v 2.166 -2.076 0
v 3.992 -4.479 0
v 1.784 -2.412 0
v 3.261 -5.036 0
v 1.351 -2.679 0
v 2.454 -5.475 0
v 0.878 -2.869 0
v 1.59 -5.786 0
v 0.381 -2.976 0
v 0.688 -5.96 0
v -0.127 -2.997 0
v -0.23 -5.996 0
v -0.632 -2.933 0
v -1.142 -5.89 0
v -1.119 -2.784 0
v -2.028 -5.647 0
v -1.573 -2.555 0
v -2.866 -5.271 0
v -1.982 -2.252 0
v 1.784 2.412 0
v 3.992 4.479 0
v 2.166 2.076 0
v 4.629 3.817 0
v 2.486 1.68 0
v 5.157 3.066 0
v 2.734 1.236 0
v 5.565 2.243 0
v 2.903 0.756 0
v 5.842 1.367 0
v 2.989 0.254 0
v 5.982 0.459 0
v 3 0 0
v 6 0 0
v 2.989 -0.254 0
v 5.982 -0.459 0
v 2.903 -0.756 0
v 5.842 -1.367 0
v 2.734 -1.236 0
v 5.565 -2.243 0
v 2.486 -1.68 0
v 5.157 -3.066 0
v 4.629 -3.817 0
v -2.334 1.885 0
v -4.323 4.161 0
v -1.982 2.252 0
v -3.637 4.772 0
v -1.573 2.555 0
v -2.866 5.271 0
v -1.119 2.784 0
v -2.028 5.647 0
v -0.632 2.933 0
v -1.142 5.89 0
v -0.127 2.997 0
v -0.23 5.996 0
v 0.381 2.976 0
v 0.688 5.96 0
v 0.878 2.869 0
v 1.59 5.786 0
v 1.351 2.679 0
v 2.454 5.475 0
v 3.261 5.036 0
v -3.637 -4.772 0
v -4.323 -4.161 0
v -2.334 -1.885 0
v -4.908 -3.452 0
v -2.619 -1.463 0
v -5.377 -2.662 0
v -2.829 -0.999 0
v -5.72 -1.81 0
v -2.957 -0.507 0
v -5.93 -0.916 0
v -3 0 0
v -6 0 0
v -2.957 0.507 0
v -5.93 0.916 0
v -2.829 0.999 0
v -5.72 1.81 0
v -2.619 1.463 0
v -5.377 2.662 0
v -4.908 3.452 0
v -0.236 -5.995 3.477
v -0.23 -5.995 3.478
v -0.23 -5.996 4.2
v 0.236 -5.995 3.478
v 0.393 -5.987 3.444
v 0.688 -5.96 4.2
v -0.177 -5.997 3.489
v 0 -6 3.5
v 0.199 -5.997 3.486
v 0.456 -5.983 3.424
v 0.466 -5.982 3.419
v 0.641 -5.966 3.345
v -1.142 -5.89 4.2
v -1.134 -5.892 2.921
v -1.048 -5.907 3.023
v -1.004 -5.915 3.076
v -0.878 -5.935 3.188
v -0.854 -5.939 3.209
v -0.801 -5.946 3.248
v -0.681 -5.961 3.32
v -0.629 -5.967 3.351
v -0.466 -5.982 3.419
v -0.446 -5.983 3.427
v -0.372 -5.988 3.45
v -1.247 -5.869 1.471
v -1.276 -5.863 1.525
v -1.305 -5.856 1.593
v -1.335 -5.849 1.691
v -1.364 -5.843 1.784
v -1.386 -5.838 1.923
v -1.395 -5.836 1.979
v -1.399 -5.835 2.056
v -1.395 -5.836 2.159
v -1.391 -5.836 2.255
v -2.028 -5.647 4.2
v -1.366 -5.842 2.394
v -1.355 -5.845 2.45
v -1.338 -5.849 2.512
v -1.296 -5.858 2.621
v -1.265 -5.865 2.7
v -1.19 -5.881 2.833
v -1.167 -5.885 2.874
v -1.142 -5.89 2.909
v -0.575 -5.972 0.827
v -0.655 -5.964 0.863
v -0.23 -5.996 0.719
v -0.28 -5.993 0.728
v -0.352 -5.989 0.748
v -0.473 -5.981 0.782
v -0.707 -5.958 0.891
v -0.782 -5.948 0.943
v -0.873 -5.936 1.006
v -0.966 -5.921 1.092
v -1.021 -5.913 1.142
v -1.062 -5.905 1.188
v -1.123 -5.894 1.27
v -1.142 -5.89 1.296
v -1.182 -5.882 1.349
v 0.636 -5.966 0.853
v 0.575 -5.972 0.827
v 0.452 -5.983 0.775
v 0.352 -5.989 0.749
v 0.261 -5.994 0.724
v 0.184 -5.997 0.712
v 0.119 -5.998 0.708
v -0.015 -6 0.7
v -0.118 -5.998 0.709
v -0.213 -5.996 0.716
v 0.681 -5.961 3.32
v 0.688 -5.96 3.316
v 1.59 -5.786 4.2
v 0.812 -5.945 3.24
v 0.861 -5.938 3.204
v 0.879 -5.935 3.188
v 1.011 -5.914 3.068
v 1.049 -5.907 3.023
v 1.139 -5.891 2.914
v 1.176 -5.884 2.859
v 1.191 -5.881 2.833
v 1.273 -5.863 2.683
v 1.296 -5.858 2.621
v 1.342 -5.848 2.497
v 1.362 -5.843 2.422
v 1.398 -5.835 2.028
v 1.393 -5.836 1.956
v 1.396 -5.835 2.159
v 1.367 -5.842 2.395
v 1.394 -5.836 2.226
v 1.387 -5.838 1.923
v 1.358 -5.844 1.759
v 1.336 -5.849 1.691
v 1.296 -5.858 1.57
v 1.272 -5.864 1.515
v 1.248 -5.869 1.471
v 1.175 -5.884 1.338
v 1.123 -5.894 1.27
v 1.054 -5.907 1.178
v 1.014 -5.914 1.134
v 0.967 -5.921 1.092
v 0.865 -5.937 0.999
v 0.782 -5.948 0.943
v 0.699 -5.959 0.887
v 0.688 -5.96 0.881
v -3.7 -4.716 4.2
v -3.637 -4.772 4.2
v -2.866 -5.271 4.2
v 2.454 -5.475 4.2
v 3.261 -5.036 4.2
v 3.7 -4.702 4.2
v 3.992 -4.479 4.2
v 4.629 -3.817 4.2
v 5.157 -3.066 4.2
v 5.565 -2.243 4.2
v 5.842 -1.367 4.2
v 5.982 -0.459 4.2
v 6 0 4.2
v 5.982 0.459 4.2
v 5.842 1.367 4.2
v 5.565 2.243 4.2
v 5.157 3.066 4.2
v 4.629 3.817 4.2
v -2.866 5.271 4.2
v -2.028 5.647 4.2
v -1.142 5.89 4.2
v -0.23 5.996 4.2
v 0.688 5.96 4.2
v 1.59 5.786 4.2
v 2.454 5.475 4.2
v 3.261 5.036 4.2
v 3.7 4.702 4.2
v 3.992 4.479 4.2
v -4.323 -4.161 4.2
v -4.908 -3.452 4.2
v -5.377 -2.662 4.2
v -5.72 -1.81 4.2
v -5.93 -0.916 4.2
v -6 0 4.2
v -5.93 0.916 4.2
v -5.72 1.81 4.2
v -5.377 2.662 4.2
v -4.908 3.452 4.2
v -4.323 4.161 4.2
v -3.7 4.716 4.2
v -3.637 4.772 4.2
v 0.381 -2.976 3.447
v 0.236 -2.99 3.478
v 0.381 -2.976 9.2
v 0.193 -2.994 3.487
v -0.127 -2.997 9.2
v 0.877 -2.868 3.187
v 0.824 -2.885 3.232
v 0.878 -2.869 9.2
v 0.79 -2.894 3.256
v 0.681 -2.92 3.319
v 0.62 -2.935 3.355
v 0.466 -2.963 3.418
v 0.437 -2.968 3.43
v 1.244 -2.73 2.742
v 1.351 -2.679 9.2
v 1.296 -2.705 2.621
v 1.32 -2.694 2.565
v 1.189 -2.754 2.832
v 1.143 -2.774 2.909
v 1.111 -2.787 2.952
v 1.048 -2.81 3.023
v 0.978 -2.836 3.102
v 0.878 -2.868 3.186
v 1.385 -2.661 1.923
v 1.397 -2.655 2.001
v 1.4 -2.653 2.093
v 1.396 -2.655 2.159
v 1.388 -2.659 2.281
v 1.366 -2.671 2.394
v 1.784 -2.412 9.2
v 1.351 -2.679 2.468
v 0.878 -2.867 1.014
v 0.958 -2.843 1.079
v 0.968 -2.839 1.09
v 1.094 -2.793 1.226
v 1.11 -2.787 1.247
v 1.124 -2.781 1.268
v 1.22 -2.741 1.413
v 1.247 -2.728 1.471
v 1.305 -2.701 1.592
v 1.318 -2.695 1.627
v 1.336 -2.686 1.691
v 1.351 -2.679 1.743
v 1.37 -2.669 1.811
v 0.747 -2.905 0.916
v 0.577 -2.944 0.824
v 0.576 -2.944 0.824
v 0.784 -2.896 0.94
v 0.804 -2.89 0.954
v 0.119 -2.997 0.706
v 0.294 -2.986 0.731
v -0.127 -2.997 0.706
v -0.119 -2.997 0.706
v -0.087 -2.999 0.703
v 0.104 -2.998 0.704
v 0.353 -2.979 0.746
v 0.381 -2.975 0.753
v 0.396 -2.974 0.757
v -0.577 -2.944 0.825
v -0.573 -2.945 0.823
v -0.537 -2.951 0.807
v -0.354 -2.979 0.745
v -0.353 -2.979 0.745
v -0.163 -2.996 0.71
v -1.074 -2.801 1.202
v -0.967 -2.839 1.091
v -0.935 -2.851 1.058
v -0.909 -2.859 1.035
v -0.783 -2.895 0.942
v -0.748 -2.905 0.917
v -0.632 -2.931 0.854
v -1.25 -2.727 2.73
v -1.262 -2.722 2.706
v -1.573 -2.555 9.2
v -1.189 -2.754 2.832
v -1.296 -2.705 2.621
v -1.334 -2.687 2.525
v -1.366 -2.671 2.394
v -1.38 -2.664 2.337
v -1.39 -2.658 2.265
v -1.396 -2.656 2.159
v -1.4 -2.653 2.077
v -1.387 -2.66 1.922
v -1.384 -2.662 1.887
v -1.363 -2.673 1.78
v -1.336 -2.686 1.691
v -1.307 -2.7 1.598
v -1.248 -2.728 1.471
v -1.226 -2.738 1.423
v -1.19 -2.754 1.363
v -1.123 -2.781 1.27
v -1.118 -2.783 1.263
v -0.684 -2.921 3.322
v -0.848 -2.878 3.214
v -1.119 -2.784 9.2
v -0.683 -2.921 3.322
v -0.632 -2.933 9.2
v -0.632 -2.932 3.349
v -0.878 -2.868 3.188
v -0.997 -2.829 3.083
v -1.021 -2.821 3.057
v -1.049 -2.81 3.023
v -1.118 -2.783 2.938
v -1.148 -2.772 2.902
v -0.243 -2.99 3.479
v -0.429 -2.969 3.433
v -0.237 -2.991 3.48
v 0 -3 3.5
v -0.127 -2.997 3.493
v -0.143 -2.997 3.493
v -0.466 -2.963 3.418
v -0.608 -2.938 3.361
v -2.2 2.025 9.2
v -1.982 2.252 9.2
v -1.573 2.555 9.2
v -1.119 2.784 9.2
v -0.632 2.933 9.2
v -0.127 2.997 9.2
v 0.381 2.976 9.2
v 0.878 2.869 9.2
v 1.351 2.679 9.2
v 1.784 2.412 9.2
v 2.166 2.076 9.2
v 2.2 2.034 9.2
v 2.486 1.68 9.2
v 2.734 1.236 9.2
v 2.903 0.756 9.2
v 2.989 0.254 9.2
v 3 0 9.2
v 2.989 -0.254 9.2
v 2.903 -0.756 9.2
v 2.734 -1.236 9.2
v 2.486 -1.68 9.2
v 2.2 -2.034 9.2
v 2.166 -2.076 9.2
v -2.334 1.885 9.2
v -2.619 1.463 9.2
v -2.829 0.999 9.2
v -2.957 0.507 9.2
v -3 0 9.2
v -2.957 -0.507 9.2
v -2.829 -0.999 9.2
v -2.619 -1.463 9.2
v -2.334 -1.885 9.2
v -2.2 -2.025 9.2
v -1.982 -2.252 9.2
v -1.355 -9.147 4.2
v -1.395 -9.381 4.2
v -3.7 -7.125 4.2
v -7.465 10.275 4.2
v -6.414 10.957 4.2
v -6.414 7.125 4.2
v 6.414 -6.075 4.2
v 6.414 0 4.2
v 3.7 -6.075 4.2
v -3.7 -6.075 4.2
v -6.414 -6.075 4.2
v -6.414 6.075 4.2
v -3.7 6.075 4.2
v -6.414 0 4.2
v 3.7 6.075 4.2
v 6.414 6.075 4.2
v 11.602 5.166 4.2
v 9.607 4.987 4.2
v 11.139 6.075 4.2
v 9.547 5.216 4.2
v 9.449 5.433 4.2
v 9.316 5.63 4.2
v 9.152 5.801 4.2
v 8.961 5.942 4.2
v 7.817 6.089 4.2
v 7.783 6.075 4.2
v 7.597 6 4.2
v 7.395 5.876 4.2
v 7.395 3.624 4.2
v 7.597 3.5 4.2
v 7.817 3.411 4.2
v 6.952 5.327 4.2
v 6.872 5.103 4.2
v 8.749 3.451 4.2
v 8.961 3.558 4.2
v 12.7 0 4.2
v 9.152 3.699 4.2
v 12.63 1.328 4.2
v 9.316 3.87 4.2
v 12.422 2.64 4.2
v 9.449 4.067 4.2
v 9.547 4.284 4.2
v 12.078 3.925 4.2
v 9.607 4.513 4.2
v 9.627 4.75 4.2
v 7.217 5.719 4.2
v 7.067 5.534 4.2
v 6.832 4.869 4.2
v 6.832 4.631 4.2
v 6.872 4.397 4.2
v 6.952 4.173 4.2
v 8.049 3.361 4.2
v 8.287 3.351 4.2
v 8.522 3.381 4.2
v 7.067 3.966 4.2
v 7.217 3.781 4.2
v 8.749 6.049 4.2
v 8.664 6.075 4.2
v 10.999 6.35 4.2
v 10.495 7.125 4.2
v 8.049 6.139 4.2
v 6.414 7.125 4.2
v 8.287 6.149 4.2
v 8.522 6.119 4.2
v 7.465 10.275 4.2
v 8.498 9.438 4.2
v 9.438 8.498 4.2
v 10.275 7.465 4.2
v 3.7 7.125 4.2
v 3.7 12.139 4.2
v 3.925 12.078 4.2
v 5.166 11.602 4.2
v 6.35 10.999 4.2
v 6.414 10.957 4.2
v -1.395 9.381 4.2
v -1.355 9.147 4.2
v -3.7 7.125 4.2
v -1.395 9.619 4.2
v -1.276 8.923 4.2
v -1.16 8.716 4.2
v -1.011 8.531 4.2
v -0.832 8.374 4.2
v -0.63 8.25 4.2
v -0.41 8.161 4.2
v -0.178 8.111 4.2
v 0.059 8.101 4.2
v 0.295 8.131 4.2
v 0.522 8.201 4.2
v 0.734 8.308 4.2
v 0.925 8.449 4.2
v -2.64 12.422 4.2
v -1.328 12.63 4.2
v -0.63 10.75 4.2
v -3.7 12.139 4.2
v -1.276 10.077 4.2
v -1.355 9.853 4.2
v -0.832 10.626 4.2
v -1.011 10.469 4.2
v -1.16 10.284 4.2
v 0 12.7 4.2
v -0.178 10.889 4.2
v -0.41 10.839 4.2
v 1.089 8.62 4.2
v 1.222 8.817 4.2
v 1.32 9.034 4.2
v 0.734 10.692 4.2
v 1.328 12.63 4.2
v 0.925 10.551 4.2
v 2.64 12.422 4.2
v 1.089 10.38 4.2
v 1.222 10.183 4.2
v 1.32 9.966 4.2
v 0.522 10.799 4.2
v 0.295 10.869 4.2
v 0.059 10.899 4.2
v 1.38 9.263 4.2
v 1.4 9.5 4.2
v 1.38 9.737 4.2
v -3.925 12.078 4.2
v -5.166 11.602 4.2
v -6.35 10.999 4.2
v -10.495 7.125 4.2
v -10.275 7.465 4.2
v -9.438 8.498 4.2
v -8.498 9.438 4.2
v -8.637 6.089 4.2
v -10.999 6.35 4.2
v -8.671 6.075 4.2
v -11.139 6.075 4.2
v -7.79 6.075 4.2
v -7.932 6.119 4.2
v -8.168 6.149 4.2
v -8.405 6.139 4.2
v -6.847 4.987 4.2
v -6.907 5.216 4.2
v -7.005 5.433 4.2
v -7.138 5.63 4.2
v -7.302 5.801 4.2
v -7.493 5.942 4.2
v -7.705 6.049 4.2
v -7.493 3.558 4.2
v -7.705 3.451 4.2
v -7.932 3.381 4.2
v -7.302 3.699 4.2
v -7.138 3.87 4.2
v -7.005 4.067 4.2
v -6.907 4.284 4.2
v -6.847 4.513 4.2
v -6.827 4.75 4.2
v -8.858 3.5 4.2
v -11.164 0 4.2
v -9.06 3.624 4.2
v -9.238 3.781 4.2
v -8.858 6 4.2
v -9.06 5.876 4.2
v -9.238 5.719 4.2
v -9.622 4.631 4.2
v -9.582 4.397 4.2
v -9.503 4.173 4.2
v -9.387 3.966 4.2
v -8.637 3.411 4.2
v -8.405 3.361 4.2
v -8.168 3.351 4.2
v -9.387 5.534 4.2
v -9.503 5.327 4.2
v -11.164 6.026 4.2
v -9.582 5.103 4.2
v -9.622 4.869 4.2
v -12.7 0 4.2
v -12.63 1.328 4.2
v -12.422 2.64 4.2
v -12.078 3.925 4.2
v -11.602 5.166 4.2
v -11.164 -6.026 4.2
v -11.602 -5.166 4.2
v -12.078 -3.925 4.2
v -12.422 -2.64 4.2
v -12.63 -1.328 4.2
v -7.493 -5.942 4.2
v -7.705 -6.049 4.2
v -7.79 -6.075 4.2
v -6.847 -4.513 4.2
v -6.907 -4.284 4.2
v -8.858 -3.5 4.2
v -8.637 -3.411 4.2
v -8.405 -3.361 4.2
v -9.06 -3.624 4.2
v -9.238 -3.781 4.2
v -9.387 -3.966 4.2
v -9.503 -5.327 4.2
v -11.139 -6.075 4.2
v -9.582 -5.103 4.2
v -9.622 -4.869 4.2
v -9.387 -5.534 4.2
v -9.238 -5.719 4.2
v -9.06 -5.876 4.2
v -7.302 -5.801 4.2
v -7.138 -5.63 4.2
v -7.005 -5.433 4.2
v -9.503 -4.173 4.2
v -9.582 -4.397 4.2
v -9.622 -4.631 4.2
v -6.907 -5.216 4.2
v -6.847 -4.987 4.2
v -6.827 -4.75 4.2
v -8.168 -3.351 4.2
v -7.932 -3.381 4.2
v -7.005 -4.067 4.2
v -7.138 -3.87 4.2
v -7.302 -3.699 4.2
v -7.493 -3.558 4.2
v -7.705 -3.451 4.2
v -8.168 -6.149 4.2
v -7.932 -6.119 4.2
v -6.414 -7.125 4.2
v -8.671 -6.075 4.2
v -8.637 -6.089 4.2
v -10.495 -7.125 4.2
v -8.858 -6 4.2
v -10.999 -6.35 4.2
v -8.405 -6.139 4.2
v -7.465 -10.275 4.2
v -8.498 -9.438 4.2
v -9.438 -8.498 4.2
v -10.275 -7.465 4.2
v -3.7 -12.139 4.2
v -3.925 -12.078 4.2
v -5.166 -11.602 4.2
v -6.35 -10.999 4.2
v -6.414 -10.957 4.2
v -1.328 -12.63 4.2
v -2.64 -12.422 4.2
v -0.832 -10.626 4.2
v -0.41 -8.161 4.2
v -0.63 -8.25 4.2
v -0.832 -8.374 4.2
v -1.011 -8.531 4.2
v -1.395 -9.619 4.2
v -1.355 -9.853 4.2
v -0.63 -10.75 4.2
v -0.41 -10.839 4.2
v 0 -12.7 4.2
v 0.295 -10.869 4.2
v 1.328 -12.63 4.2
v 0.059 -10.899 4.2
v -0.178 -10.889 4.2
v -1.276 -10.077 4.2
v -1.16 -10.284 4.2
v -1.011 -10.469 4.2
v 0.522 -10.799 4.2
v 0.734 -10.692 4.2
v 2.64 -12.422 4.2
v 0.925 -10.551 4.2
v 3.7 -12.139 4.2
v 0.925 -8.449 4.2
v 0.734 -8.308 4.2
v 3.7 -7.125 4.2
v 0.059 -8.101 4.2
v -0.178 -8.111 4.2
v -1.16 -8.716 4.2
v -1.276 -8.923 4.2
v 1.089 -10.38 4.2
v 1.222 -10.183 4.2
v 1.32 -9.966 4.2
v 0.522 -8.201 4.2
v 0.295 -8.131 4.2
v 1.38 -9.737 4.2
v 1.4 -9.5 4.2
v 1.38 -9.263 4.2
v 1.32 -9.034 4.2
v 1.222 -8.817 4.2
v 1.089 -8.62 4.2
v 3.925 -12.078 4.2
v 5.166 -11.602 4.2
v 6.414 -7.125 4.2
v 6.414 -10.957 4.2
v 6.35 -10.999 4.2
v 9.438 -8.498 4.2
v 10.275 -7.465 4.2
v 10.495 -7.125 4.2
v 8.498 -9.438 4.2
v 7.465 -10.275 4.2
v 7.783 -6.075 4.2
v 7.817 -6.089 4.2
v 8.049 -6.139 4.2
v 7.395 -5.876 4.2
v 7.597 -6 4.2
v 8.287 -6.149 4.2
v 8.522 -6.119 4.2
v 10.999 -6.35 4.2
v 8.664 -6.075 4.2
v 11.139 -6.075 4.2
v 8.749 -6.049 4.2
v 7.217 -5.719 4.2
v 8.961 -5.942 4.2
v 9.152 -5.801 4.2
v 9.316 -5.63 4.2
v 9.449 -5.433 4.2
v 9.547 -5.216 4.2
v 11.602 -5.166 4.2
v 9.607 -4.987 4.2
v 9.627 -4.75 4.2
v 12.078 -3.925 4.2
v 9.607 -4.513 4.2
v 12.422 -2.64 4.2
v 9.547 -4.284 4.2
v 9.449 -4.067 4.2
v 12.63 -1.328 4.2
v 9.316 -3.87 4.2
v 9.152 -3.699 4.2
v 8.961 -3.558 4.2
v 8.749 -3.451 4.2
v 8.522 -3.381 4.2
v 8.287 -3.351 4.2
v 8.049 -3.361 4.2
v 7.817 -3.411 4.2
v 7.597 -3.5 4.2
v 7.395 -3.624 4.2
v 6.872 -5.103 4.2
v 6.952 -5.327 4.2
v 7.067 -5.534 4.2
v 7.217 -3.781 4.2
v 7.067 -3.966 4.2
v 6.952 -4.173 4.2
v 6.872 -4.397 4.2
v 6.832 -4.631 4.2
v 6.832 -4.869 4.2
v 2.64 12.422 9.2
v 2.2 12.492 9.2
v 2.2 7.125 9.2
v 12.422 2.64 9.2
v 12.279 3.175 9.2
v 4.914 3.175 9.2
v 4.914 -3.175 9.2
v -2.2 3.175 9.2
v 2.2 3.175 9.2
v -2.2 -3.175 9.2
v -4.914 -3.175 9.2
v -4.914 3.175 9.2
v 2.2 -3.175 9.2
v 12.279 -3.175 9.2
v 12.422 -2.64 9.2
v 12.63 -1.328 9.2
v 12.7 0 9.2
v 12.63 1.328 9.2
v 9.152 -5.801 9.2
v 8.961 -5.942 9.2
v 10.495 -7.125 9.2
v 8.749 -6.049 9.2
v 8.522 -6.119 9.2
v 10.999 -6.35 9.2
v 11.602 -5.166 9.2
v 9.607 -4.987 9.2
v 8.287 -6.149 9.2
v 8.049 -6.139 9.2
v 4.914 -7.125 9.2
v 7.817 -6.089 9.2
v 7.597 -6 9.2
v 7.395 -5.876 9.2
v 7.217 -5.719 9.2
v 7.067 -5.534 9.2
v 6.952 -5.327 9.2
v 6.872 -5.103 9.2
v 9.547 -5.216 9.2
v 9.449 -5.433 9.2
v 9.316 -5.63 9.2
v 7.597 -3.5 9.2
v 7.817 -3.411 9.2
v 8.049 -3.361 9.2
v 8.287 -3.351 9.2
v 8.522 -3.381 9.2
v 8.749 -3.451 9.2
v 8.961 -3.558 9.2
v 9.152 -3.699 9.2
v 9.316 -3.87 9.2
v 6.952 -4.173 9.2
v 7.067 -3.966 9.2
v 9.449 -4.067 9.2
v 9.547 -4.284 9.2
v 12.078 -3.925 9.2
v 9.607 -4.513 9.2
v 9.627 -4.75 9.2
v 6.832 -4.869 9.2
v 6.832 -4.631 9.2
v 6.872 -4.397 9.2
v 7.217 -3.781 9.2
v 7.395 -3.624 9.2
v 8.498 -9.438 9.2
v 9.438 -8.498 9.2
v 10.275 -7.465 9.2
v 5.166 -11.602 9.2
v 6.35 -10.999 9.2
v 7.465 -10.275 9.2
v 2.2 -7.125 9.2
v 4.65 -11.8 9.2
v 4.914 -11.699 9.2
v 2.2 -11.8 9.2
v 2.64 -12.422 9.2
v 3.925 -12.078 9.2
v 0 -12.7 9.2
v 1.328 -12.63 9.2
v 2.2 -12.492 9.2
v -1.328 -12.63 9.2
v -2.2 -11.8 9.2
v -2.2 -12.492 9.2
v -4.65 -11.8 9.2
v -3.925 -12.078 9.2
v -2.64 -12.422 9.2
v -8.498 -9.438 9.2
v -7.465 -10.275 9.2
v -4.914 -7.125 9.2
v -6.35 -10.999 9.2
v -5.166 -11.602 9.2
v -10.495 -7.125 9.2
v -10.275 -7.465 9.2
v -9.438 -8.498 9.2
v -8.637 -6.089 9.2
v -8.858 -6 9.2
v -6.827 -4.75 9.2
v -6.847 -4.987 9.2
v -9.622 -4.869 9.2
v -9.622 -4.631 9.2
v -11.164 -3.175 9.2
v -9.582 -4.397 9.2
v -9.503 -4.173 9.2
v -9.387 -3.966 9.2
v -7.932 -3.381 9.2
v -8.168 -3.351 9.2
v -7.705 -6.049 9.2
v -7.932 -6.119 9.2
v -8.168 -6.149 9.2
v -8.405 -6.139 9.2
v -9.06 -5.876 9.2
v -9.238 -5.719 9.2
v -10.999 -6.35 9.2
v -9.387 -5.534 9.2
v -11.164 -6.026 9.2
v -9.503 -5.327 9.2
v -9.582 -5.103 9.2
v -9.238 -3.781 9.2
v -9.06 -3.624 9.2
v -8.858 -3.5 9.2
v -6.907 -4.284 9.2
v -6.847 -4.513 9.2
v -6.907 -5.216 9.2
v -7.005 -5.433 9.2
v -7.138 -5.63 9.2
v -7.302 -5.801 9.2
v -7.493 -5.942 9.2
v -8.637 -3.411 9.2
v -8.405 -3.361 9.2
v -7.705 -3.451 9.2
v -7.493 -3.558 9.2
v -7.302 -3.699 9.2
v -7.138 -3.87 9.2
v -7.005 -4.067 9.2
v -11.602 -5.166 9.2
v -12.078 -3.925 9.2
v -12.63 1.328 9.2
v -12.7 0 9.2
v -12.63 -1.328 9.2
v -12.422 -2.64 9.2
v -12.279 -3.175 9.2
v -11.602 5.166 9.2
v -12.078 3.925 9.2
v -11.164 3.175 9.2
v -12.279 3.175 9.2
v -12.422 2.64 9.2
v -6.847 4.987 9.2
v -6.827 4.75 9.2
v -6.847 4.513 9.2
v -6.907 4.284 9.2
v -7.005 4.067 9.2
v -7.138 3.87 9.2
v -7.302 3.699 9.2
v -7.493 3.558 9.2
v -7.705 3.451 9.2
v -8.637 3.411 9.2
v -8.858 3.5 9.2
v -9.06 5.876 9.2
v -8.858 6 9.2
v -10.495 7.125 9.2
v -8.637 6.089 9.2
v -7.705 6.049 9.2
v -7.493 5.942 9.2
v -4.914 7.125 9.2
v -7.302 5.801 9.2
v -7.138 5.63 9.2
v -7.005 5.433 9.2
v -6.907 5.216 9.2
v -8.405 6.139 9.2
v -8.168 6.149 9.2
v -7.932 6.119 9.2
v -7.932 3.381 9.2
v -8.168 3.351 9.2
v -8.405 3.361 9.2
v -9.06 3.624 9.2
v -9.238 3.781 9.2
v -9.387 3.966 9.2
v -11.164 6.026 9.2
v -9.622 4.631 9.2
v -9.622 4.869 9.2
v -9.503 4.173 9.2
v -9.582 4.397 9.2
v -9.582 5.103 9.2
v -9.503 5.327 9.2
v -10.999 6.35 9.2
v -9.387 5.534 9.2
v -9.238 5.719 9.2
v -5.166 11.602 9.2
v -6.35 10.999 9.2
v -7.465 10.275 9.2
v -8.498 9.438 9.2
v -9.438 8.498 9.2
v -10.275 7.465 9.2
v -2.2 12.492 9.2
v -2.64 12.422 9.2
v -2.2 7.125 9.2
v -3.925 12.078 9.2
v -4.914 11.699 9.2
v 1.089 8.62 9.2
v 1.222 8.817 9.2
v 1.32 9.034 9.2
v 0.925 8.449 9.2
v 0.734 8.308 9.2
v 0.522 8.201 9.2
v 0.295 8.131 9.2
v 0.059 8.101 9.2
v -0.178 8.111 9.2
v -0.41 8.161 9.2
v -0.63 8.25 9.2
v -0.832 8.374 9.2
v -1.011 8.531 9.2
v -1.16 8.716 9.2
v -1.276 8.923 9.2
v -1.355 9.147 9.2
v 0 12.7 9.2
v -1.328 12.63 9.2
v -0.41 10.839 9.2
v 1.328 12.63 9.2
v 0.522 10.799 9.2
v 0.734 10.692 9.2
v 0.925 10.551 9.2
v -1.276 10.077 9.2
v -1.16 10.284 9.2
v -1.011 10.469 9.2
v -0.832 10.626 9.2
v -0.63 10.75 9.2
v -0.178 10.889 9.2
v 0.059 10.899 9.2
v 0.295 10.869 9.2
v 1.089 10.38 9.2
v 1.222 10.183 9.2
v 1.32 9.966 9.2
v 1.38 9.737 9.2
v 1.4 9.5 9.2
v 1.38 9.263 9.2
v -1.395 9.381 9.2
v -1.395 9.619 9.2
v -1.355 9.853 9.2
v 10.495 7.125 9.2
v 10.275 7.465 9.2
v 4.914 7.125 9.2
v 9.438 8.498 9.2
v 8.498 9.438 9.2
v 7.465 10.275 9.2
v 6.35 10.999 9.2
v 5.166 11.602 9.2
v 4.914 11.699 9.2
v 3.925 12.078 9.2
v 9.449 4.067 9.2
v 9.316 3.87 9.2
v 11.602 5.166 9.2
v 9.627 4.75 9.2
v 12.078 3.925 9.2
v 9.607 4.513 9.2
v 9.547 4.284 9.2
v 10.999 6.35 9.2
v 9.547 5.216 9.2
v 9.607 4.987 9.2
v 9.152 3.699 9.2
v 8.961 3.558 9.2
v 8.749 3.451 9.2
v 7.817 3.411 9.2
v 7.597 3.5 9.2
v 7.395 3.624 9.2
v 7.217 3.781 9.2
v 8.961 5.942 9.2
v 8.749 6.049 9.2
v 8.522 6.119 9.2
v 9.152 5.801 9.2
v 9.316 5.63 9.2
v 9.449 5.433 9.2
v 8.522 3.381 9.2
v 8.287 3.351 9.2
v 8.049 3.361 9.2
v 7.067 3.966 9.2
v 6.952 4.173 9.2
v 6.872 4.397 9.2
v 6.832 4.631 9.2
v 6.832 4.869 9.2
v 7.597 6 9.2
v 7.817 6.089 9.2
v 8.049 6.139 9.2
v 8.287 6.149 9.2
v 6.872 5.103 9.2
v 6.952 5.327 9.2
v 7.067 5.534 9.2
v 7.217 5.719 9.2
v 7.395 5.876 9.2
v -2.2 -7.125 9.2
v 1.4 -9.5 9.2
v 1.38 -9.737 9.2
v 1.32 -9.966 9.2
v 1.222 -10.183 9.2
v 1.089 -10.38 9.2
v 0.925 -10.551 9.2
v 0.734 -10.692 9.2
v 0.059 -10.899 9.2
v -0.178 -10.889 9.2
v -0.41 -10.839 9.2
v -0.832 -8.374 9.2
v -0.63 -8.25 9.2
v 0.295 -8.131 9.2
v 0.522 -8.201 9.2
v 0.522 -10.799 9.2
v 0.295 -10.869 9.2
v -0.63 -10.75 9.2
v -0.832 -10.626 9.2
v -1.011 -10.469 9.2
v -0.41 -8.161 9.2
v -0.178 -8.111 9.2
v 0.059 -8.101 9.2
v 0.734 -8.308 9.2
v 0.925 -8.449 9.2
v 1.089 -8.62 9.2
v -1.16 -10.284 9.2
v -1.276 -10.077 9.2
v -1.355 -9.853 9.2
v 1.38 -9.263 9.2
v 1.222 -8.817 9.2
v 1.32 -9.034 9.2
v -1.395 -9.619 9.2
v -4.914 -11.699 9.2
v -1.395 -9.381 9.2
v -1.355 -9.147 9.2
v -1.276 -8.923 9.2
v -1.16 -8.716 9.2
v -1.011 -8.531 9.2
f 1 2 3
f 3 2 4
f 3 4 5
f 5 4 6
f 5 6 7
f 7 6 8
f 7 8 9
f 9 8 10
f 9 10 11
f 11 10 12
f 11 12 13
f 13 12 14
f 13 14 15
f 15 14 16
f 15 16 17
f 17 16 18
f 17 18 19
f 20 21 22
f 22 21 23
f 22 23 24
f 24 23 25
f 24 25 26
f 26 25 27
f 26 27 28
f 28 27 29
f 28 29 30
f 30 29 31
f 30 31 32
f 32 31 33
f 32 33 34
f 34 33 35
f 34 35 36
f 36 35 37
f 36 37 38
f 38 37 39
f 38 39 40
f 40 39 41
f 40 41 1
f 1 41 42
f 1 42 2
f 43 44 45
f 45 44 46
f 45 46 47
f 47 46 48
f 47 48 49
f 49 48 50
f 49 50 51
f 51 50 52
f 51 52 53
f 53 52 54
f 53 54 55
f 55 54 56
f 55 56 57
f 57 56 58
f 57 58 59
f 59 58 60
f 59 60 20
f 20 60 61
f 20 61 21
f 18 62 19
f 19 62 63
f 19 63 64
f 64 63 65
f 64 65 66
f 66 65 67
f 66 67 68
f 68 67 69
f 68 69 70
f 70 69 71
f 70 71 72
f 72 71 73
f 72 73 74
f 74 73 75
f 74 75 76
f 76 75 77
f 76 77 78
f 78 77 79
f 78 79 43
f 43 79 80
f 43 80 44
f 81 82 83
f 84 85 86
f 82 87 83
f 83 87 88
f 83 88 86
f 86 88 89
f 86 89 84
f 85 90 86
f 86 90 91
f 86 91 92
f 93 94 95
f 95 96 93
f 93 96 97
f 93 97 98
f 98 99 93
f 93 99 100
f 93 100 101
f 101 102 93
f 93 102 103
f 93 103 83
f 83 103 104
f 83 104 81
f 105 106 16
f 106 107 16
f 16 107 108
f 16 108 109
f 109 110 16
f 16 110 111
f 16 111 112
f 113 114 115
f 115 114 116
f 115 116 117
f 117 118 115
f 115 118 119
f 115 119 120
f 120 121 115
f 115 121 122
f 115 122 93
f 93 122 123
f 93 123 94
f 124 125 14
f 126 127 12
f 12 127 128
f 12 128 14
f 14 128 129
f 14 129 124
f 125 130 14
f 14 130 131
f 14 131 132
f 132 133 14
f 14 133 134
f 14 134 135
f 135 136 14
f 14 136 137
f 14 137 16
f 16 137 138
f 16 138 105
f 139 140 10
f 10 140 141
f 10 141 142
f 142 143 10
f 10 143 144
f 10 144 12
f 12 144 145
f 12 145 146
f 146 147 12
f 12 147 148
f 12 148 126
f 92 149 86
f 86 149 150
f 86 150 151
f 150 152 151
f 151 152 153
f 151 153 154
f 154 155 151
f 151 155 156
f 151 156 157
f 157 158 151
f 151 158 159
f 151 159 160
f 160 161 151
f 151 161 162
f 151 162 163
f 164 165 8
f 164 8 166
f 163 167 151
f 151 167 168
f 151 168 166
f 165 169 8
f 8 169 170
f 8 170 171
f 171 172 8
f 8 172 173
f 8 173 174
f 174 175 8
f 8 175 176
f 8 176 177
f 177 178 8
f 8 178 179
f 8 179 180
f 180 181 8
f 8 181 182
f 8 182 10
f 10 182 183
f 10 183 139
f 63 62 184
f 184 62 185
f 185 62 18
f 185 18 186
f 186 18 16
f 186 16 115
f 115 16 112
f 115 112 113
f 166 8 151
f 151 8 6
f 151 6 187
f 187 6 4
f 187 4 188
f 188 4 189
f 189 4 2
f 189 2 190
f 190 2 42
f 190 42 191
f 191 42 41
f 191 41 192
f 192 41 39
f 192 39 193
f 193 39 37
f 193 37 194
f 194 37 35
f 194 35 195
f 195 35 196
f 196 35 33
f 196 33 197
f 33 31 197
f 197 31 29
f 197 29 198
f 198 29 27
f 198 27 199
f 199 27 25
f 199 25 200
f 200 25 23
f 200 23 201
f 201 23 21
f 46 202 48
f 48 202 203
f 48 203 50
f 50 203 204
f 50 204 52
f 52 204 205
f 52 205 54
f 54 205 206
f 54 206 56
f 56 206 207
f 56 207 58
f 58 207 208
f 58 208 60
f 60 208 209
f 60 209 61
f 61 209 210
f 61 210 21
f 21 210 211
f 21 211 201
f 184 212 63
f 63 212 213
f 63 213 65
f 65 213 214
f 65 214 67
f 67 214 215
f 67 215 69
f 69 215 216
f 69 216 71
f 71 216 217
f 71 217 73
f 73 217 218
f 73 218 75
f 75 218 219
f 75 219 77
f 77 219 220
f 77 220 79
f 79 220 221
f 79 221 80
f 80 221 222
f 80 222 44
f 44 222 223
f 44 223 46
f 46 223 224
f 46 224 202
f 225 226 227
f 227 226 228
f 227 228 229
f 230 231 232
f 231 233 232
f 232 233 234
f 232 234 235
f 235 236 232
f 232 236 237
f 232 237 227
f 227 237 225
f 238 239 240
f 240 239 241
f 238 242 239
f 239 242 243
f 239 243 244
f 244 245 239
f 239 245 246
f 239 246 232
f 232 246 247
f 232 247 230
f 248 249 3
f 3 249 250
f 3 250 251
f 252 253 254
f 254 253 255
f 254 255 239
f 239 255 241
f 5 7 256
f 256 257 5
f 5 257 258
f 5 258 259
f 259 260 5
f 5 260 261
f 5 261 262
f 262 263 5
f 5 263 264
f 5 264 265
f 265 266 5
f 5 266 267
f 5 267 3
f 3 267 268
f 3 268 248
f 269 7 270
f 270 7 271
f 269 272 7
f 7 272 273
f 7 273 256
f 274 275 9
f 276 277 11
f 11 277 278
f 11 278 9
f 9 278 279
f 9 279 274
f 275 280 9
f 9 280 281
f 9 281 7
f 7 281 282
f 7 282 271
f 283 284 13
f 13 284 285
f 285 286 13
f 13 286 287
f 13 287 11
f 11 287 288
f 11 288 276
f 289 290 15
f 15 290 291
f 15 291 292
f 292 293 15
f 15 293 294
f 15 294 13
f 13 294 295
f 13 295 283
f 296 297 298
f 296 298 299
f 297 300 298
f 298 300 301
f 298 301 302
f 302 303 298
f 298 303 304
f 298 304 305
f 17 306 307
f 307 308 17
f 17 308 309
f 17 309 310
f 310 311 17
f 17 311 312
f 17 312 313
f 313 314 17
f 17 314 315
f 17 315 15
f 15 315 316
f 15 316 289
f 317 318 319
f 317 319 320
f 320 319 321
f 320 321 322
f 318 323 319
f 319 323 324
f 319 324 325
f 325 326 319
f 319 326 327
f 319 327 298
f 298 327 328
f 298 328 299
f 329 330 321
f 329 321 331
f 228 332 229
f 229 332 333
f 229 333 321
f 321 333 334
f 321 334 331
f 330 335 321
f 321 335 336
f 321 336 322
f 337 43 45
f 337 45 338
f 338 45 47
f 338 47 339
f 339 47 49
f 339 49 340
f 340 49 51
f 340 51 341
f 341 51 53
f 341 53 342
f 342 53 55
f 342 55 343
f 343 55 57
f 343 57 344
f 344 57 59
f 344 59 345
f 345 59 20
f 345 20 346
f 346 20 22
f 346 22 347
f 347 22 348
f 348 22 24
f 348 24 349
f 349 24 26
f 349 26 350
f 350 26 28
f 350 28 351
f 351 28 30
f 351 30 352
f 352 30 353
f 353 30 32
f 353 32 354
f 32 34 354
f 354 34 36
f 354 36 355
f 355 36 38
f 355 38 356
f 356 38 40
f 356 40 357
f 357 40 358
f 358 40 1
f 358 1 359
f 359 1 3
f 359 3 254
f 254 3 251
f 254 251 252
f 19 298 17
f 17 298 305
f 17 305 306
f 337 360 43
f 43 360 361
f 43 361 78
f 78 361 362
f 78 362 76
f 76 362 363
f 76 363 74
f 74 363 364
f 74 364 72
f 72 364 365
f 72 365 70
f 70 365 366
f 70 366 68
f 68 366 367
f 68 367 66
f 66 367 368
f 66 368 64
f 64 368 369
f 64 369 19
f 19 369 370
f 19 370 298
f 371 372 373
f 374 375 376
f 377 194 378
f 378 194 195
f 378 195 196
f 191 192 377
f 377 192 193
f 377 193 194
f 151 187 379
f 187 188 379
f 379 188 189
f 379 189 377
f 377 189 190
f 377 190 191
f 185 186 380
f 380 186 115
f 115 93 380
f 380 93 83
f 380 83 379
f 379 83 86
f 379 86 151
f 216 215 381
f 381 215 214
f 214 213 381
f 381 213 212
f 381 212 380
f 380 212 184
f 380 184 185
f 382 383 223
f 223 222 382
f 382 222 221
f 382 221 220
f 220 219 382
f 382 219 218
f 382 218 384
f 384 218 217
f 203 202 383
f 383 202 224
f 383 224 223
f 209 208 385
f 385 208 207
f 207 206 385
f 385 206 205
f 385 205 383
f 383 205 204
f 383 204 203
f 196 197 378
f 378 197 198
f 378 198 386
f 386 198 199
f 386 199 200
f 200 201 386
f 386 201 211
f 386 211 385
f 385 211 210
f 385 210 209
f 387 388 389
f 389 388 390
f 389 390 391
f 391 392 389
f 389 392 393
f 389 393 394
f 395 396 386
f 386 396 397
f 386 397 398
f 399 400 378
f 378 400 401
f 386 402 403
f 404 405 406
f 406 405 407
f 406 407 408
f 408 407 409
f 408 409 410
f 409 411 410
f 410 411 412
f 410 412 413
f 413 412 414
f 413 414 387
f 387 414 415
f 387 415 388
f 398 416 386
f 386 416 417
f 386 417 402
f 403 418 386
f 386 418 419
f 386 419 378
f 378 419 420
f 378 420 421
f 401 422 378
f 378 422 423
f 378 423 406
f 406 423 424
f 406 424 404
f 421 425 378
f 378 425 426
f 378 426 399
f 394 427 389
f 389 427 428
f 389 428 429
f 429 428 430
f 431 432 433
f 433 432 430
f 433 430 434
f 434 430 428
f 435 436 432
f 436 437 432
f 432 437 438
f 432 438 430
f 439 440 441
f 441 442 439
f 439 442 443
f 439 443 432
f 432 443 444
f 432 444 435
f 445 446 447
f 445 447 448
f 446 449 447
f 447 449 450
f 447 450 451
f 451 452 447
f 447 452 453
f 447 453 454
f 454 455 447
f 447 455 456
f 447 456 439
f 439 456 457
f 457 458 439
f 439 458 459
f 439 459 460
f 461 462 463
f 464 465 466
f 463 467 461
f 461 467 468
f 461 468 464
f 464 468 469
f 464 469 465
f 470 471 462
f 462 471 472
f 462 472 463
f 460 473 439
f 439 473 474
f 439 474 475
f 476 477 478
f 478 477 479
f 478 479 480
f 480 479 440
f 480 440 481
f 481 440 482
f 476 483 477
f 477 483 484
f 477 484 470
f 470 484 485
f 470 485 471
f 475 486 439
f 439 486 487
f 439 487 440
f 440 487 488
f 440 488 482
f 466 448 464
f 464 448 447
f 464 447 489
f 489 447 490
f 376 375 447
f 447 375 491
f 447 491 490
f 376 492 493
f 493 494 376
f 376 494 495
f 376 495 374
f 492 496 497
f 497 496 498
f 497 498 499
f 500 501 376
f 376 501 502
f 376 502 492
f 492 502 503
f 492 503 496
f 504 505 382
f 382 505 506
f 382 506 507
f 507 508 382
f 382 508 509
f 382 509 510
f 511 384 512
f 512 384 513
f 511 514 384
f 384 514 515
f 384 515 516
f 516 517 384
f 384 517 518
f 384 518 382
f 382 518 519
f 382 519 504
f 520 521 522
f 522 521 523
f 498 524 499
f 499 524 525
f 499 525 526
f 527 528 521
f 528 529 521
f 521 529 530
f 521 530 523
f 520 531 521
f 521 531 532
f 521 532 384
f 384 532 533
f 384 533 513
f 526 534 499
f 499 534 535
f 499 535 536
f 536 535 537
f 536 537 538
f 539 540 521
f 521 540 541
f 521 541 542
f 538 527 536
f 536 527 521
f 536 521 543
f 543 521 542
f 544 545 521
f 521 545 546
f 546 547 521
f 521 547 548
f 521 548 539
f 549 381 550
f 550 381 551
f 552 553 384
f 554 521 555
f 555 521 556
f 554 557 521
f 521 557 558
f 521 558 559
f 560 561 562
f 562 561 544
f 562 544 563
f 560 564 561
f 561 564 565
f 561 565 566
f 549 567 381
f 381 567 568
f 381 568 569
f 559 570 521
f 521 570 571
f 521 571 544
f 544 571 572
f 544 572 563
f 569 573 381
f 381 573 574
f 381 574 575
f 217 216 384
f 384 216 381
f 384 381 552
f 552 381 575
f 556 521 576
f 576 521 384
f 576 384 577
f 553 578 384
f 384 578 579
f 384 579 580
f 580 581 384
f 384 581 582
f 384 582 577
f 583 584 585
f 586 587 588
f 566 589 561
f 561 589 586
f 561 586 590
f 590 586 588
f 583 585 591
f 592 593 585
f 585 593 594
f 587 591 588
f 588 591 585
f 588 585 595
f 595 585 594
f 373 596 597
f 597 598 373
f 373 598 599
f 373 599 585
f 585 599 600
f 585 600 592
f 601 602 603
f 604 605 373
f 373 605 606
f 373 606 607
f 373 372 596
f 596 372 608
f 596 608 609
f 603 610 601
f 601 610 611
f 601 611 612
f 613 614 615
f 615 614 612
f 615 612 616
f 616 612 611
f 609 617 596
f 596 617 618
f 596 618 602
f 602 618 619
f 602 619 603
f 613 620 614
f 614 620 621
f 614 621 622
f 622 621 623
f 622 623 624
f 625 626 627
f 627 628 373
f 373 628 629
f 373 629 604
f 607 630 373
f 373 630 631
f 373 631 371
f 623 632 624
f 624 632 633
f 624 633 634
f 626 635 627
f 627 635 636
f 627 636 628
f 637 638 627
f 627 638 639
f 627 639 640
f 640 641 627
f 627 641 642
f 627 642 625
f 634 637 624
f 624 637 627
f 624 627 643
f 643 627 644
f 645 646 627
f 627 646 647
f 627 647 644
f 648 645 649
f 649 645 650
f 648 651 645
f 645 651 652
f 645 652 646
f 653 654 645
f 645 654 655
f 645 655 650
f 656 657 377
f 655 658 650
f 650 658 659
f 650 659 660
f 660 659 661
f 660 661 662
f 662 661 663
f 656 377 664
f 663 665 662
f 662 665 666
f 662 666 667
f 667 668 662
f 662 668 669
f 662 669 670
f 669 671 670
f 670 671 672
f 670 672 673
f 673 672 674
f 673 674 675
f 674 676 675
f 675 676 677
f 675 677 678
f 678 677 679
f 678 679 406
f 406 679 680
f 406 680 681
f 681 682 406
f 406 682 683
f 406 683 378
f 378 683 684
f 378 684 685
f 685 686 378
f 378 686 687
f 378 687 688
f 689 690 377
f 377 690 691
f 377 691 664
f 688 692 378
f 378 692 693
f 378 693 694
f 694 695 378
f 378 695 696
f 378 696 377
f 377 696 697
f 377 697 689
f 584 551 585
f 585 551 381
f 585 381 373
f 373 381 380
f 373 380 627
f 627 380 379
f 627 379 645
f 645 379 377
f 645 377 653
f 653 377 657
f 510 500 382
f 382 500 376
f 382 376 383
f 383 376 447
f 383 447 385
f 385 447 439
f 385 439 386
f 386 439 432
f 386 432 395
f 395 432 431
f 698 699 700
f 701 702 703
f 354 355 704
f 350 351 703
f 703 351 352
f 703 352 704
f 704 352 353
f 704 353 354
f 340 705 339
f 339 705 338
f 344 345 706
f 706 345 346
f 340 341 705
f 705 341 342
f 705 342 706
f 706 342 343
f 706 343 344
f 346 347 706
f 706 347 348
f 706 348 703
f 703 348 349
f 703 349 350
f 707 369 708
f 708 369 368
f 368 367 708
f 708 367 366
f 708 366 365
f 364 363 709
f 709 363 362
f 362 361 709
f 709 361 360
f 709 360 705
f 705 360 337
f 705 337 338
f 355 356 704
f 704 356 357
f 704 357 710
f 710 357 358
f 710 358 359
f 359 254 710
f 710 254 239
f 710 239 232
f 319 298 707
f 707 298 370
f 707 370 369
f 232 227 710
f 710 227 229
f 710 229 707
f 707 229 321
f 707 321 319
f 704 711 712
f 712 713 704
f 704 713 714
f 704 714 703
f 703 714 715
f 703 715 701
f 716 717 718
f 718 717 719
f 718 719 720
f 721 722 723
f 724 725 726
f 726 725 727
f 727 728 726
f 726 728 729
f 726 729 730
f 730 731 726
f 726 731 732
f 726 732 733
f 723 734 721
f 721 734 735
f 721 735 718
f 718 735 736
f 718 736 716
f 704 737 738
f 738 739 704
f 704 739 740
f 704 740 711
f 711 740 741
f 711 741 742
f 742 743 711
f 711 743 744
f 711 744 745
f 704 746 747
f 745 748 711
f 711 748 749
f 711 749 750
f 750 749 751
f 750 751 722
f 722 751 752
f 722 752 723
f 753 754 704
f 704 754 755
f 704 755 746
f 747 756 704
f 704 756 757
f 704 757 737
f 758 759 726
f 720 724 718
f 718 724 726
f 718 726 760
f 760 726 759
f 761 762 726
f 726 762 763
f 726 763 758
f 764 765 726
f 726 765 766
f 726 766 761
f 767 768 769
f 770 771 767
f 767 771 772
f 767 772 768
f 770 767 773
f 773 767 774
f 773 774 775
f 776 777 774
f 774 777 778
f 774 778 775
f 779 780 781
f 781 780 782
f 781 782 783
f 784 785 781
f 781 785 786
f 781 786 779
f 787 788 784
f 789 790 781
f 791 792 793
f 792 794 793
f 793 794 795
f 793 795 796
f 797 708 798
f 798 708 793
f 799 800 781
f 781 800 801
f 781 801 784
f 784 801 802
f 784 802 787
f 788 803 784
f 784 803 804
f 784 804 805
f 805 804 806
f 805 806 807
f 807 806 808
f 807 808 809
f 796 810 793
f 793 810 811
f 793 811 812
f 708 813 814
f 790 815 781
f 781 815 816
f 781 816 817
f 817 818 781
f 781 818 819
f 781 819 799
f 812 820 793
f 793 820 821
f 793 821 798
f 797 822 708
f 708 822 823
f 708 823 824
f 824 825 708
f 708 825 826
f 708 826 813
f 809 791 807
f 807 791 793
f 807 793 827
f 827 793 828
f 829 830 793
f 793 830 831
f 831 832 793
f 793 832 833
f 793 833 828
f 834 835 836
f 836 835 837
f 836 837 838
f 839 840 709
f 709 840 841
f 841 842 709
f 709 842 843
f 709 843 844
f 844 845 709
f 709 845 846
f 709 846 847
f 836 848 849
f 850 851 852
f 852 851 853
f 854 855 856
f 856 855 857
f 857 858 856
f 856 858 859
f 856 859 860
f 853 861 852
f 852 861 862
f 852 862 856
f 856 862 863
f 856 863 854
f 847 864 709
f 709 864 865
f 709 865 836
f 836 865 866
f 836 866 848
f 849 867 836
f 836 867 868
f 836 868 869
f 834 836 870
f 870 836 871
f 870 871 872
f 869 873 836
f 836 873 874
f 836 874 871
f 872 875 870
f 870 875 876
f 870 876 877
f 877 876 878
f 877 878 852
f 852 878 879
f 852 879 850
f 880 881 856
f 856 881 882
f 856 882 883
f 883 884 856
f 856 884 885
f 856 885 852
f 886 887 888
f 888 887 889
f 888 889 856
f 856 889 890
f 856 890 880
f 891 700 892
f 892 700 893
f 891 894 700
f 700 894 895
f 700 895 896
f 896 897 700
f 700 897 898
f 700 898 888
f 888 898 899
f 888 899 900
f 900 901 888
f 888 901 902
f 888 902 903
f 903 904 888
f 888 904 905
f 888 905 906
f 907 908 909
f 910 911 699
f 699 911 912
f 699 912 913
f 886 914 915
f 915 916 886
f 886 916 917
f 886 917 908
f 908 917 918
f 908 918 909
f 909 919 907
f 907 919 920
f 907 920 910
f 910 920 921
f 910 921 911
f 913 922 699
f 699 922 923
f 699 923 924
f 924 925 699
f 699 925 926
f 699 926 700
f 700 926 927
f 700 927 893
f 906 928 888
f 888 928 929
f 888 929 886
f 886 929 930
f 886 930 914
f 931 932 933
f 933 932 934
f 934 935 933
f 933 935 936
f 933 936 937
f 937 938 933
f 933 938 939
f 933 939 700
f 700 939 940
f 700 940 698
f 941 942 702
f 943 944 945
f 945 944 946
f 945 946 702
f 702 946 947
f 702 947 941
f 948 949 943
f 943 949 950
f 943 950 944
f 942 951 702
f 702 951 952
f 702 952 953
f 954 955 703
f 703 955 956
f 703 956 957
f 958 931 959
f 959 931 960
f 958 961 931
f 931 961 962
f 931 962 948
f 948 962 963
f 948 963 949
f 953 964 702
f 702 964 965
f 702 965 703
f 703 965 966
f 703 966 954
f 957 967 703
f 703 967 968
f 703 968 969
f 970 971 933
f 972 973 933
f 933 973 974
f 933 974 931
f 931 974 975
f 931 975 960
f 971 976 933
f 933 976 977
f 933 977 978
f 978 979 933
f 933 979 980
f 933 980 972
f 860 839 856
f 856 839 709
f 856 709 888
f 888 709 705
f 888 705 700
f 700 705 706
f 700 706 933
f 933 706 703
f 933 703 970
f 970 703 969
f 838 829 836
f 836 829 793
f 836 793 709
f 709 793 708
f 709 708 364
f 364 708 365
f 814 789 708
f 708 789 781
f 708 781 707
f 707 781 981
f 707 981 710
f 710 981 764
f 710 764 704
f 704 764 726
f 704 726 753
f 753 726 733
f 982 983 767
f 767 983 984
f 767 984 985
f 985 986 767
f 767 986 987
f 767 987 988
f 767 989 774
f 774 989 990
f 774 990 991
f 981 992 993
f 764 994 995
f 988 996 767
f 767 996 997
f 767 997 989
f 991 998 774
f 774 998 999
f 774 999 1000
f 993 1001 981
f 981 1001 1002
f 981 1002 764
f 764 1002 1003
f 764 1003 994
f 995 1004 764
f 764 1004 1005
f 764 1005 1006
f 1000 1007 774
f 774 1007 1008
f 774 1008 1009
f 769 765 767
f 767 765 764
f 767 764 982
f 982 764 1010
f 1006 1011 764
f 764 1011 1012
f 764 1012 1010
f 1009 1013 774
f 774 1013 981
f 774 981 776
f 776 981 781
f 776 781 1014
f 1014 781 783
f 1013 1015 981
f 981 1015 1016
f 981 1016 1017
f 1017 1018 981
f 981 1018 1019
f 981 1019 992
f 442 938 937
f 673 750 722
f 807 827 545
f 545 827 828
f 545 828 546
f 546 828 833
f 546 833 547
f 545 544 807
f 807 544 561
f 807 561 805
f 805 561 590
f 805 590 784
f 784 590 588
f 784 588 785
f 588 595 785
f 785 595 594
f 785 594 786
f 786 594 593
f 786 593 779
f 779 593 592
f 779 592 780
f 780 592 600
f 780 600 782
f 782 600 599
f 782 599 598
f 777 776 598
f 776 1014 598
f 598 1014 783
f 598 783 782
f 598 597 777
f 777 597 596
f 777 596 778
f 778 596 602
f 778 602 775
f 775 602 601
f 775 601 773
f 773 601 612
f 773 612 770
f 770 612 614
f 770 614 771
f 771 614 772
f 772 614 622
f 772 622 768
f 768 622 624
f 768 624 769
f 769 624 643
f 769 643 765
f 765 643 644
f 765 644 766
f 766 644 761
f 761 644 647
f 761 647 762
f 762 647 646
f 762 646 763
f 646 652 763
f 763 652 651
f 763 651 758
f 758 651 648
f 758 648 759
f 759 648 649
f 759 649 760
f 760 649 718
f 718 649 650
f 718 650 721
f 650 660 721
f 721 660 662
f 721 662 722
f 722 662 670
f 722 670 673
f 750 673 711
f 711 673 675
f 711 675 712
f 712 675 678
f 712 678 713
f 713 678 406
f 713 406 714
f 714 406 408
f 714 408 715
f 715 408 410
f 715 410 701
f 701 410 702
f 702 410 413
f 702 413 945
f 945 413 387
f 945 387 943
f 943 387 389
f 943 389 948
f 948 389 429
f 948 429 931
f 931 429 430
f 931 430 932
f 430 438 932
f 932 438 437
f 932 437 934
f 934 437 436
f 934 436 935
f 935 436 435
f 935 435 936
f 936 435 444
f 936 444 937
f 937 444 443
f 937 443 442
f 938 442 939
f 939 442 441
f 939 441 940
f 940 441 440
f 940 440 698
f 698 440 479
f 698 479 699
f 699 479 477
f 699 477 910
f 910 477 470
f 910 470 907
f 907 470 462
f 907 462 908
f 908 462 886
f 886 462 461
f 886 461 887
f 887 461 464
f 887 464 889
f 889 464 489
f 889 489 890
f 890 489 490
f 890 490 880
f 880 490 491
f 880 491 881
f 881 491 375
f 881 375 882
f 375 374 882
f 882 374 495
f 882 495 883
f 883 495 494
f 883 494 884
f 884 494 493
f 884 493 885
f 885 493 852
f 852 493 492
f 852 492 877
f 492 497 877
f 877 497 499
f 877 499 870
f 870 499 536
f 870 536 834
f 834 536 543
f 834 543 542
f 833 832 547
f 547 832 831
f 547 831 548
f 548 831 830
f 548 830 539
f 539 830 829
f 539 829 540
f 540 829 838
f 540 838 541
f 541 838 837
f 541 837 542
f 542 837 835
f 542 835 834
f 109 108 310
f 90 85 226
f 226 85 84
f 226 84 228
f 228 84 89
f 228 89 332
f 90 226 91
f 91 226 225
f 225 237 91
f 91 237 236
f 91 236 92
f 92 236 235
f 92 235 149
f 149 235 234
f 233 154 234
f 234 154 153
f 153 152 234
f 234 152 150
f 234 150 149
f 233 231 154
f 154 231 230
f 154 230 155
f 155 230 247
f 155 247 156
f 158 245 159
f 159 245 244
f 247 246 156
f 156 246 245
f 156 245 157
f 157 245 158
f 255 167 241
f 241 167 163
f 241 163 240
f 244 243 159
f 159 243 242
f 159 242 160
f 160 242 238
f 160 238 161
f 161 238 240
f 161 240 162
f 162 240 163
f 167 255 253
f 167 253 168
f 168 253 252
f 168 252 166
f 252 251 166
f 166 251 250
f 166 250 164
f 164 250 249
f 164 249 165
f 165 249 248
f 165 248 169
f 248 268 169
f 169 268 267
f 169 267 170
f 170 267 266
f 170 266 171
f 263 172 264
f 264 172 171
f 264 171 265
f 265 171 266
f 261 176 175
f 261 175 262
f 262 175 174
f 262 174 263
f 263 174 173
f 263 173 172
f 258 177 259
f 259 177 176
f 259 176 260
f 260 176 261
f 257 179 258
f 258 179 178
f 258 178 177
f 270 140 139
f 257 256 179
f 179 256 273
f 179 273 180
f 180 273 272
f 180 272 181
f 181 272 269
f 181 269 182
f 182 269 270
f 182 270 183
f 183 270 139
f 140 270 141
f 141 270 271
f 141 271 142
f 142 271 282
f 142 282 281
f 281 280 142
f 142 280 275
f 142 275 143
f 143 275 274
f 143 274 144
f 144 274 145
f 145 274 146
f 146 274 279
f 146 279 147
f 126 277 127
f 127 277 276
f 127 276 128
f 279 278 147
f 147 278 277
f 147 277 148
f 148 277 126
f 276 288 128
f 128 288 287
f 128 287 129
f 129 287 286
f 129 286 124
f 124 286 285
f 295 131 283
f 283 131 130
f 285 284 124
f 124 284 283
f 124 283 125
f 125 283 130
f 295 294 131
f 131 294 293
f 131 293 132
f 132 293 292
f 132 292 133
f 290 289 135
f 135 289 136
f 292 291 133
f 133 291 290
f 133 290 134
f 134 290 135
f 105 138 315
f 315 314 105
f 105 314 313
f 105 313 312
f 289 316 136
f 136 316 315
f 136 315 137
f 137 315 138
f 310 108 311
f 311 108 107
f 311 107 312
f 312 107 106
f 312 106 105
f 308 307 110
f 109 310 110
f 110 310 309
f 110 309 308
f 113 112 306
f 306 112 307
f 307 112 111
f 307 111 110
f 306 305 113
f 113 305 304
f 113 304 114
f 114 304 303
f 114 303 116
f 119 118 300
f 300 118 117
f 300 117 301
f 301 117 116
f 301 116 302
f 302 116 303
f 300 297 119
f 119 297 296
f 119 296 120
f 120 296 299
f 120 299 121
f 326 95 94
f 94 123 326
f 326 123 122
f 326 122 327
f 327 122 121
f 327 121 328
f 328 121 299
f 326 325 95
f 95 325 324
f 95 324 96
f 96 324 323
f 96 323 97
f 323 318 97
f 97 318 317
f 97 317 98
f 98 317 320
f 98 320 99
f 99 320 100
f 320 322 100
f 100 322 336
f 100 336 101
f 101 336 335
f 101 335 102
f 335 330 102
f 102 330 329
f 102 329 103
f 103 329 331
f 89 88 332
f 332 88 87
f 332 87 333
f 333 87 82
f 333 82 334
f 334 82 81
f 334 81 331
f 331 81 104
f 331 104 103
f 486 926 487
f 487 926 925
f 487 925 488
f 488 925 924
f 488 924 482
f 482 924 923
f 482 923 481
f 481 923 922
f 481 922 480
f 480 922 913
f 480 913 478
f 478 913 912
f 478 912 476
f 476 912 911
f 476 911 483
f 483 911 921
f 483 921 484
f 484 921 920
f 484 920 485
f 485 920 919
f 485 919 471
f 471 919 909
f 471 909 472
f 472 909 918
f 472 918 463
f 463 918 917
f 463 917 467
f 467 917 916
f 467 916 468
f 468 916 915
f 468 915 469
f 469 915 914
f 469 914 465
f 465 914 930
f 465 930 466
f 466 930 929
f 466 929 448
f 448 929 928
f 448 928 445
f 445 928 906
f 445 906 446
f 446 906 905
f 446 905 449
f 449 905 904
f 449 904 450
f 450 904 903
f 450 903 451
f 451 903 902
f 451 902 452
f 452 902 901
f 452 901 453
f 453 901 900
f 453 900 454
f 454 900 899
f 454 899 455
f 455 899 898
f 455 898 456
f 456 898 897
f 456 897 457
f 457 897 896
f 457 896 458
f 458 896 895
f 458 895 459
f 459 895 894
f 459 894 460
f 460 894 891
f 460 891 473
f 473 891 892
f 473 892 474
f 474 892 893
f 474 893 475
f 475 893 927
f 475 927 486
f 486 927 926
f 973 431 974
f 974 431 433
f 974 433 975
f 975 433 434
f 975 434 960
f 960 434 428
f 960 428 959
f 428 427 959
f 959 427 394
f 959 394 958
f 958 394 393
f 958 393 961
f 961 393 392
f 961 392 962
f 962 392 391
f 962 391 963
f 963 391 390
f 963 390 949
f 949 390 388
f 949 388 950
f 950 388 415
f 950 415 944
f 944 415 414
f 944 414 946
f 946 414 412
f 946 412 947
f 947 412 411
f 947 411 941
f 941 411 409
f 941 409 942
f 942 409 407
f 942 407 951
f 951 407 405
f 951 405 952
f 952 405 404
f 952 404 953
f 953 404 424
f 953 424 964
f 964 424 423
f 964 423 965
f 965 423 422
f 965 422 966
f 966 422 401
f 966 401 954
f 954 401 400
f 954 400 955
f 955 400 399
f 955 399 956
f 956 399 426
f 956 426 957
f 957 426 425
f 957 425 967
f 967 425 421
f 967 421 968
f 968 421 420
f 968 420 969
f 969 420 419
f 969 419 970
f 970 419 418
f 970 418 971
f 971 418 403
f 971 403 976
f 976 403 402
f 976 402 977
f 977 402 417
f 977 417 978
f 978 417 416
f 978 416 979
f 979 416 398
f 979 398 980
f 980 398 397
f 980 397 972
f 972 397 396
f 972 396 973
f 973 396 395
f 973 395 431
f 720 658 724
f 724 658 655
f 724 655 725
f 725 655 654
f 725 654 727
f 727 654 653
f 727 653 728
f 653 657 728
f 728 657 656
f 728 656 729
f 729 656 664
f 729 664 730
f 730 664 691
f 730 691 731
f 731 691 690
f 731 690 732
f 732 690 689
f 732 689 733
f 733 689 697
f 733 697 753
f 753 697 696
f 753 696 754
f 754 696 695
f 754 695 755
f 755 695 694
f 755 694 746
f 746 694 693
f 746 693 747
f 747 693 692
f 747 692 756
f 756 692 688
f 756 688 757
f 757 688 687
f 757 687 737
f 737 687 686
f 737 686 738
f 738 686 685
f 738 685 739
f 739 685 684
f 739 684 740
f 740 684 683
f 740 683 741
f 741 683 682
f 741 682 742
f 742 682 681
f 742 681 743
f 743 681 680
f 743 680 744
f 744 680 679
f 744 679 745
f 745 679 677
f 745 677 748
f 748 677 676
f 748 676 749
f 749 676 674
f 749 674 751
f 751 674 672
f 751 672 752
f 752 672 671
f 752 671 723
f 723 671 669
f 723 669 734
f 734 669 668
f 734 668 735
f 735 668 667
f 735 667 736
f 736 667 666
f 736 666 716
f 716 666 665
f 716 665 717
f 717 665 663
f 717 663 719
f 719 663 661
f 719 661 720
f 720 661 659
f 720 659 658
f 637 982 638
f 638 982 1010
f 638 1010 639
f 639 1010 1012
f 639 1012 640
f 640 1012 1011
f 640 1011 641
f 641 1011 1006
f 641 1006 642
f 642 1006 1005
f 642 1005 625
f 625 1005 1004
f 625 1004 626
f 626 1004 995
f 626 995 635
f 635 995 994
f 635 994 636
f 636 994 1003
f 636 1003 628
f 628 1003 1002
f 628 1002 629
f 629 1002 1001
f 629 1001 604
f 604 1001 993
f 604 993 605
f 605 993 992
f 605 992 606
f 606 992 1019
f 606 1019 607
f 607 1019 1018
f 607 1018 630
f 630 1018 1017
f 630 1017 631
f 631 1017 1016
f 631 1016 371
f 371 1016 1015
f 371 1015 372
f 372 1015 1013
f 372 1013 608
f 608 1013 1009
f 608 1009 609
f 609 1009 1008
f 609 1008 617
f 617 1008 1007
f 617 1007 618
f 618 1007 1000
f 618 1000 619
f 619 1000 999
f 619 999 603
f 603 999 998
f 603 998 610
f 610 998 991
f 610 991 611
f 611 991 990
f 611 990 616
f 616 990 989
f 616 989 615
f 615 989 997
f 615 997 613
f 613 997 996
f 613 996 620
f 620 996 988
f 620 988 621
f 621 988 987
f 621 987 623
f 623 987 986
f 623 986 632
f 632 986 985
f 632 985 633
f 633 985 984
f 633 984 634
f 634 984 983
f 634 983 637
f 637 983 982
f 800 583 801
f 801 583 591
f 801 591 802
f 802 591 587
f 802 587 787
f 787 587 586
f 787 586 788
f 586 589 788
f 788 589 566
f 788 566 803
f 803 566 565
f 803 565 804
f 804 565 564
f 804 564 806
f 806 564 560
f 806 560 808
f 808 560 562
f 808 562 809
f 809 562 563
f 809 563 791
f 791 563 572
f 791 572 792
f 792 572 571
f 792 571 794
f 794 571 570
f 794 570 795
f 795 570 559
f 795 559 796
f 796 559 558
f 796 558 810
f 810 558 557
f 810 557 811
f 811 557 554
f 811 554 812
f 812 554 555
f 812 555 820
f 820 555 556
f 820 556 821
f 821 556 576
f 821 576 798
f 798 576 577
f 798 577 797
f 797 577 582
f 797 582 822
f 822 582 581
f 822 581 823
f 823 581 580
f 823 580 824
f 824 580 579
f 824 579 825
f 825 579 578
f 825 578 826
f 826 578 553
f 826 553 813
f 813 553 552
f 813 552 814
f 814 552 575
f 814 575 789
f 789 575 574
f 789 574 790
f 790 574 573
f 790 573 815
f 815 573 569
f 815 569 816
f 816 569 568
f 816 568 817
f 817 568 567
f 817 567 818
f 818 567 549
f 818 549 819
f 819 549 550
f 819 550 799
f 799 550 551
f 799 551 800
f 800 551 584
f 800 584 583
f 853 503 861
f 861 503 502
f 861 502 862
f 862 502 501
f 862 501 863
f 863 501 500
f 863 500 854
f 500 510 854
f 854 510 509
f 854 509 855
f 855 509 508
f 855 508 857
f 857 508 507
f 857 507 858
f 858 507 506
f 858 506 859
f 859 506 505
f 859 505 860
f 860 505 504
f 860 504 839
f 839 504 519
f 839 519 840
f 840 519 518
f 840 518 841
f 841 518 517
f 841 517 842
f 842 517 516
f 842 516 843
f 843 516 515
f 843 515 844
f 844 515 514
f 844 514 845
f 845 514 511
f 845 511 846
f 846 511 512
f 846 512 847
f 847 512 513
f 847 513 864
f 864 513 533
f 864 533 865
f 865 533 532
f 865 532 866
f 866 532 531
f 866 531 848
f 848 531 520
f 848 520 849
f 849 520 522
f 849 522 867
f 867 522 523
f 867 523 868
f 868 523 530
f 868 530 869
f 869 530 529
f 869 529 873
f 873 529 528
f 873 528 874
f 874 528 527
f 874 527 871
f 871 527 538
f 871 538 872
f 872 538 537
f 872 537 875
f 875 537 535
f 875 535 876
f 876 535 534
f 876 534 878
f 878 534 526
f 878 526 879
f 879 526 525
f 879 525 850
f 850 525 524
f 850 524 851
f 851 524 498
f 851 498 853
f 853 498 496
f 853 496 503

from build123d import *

# Parameters (mm, degrees)
SKETCH1_R           = 6
SKETCH1_R_2         = 3
BOSS_EXTRUDE1_DEPTH = 4.2
SKETCH2_R           = 12.7
SKETCH2_R_2         = 3
BOSS_EXTRUDE2_DEPTH = 5
SKETCH3_R           = 1.4
CUT_EXTRUDE1_DEPTH  = 13.7
SKETCH4_R           = 1.4
CUT_EXTRUDE2_DEPTH  = 5


with BuildPart() as part:
    # Sketch1 → Boss-Extrude1 (new body)
    with BuildSketch(Plane.XY):
        Circle(SKETCH1_R)
        Circle(SKETCH1_R_2, mode=Mode.SUBTRACT)
    extrude(amount=BOSS_EXTRUDE1_DEPTH)

    # Sketch2 → Boss-Extrude2 (add)
    with BuildSketch(Plane.XY.offset(4.2)):
        Circle(SKETCH2_R)
        Circle(SKETCH2_R_2, mode=Mode.SUBTRACT)
    extrude(amount=BOSS_EXTRUDE2_DEPTH)

    # Sketch3 → Cut-Extrude1 (cut, through all)
    with BuildSketch(Plane(origin=(0, 0, 0), x_dir=(1, 0, 0), z_dir=(0, 1, 0))):
        with Locations((0, -2.1)):
            Circle(SKETCH3_R)
    extrude(amount=-CUT_EXTRUDE1_DEPTH, mode=Mode.SUBTRACT)

    # Sketch4 → Cut-Extrude2 (cut)
    with BuildSketch(Plane.XY.offset(9.2)):
        with Locations((0, 9.5)):
            Circle(SKETCH4_R)
        with Locations((8.227241336, 4.75)):
            Circle(SKETCH4_R)
        with Locations((8.227241336, -4.75)):
            Circle(SKETCH4_R)
        with Locations((0, -9.5)):
            Circle(SKETCH4_R)
        with Locations((-8.227241336, -4.75)):
            Circle(SKETCH4_R)
        with Locations((-8.227241336, 4.75)):
            Circle(SKETCH4_R)
    extrude(amount=-CUT_EXTRUDE2_DEPTH, mode=Mode.SUBTRACT)


solid = part.part
